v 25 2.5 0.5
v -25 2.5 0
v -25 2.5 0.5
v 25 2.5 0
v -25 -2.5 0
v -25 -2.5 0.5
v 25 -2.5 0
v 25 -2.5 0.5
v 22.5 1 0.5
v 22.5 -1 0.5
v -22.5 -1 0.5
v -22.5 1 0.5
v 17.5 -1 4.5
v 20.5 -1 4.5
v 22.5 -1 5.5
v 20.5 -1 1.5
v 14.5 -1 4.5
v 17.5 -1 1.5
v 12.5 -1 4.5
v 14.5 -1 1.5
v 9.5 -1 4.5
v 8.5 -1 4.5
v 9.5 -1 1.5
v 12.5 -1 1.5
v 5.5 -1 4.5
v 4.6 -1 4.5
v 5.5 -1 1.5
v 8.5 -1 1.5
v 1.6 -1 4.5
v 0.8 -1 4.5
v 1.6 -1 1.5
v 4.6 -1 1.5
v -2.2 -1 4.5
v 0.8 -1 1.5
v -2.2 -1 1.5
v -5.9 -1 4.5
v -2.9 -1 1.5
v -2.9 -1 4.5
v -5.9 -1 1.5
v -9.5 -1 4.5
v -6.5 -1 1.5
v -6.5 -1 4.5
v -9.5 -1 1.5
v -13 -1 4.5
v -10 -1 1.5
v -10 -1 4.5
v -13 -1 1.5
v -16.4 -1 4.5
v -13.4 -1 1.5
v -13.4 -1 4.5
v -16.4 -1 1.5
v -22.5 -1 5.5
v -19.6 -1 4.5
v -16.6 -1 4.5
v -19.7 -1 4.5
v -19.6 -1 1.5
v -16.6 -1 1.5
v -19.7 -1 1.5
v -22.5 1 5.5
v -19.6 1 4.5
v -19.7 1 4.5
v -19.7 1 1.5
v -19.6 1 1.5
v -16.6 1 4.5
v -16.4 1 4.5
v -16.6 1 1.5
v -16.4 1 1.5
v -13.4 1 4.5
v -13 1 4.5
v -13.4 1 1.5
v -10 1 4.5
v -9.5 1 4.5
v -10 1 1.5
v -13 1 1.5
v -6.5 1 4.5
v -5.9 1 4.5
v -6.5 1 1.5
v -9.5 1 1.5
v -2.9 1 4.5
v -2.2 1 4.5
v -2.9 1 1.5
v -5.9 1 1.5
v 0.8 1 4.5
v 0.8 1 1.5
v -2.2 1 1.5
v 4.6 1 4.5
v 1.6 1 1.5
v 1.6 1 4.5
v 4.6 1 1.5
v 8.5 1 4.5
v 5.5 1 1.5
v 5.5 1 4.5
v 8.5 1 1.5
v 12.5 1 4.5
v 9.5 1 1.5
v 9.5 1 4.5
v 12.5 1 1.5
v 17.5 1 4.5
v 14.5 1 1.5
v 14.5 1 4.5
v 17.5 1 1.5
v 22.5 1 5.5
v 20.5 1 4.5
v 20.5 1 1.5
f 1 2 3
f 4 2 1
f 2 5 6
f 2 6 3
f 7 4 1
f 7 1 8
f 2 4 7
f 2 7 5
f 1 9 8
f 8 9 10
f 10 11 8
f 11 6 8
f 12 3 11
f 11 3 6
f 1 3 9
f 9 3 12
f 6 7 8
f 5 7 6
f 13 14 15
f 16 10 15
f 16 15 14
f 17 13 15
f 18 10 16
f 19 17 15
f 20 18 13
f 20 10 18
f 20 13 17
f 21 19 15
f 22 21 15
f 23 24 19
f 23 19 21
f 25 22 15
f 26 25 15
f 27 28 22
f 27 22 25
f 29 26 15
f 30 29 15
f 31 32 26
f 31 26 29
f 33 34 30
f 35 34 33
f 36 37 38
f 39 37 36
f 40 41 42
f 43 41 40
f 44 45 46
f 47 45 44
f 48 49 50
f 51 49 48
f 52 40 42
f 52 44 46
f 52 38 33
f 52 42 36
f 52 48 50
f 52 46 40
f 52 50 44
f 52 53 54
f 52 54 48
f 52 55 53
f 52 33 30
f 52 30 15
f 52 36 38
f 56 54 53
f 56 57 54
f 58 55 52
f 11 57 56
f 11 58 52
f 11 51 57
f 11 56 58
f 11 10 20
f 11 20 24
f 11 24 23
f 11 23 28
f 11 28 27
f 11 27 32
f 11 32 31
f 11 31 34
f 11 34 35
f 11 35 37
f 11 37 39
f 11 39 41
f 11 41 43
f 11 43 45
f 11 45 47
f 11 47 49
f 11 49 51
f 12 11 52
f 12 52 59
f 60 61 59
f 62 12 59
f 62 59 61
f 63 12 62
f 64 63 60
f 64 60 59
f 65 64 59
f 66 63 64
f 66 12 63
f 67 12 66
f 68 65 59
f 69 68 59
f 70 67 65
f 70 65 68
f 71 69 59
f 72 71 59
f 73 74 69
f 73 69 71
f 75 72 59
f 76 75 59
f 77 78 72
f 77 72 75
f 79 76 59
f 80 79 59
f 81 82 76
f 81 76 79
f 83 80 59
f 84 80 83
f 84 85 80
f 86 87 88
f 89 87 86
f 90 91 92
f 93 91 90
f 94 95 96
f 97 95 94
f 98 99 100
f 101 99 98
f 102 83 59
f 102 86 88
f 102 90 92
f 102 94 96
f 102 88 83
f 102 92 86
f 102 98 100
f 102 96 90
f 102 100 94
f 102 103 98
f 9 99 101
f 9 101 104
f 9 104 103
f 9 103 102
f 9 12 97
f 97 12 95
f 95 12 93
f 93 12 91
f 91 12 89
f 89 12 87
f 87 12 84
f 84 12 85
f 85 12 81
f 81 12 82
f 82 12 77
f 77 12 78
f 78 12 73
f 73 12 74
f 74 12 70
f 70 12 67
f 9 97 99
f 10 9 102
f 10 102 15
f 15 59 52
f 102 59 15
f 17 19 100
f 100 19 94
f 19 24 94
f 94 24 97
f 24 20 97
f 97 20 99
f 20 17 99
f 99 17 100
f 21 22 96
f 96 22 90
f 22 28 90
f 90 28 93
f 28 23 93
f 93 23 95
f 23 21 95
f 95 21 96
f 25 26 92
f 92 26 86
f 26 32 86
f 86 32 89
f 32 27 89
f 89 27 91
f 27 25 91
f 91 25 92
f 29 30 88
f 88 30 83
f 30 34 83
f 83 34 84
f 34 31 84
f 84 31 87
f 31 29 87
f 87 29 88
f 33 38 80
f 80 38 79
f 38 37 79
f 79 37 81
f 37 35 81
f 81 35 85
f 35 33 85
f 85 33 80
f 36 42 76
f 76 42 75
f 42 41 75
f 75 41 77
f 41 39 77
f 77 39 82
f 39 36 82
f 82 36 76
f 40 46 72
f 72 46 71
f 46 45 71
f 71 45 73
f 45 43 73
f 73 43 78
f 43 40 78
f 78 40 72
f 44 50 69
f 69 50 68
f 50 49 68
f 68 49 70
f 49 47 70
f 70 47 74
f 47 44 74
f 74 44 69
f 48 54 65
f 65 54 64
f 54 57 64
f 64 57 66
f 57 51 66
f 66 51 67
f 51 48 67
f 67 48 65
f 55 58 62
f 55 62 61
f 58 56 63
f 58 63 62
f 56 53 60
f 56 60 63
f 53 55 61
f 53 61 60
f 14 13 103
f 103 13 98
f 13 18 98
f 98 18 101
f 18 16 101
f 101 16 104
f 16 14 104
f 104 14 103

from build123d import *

# Parameters (mm, degrees)
SKETCH_W       = 50
SKETCH_H       = 5
PAD_DEPTH      = 0.5
SKETCH001_W    = 45
SKETCH001_H    = 2
PAD001_DEPTH   = 5
SKETCH002_W    = 3
SKETCH002_H    = 3
SKETCH002_W_2  = 2
SKETCH002_W_3  = 1
SKETCH002_W_4  = 0.9
SKETCH002_W_5  = 0.8
SKETCH002_W_6  = 0.7
SKETCH002_W_7  = 0.6
SKETCH002_W_8  = 0.5
SKETCH002_W_9  = 0.4
SKETCH002_W_10 = 0.2
SKETCH002_W_11 = 0.1
POCKET_DEPTH   = 3.501


with BuildPart() as part:
    # Sketch → Pad (new body)
    with BuildSketch(Plane.XY):
        Rectangle(SKETCH_W, SKETCH_H)
    extrude(amount=PAD_DEPTH)

    # Sketch001 (on Face6 of Pad) → Pad001 (join)
    with BuildSketch(Plane.XY.offset(0.5)):
        Rectangle(SKETCH001_W, SKETCH001_H)
    extrude(amount=PAD001_DEPTH)

    # Sketch002 (on Face7 of Pad001) → Pocket (cut, through all)
    with BuildSketch(Plane.XZ.offset(1)):
        with Locations((19, 3)):
            Rectangle(SKETCH002_W, SKETCH002_H)
        with Locations((13.5, 3)):
            Rectangle(SKETCH002_W_2, SKETCH002_H)
        with Locations((9, 3)):
            Rectangle(SKETCH002_W_3, SKETCH002_H)
        with Locations((5.05, 3)):
            Rectangle(SKETCH002_W_4, SKETCH002_H)
        with Locations((1.2, 3)):
            Rectangle(SKETCH002_W_5, SKETCH002_H)
        with Locations((-2.55, 3)):
            Rectangle(SKETCH002_W_6, SKETCH002_H)
        with Locations((-6.2, 3)):
            Rectangle(SKETCH002_W_7, SKETCH002_H)
        with Locations((-9.75, 3)):
            Rectangle(SKETCH002_W_8, SKETCH002_H)
        with Locations((-13.2, 3)):
            Rectangle(SKETCH002_W_9, SKETCH002_H)
        with Locations((-16.5, 3)):
            Rectangle(SKETCH002_W_10, SKETCH002_H)
        with Locations((-19.65, 3)):
            Rectangle(SKETCH002_W_11, SKETCH002_H)
    extrude(amount=-POCKET_DEPTH, mode=Mode.SUBTRACT)


solid = part.part
